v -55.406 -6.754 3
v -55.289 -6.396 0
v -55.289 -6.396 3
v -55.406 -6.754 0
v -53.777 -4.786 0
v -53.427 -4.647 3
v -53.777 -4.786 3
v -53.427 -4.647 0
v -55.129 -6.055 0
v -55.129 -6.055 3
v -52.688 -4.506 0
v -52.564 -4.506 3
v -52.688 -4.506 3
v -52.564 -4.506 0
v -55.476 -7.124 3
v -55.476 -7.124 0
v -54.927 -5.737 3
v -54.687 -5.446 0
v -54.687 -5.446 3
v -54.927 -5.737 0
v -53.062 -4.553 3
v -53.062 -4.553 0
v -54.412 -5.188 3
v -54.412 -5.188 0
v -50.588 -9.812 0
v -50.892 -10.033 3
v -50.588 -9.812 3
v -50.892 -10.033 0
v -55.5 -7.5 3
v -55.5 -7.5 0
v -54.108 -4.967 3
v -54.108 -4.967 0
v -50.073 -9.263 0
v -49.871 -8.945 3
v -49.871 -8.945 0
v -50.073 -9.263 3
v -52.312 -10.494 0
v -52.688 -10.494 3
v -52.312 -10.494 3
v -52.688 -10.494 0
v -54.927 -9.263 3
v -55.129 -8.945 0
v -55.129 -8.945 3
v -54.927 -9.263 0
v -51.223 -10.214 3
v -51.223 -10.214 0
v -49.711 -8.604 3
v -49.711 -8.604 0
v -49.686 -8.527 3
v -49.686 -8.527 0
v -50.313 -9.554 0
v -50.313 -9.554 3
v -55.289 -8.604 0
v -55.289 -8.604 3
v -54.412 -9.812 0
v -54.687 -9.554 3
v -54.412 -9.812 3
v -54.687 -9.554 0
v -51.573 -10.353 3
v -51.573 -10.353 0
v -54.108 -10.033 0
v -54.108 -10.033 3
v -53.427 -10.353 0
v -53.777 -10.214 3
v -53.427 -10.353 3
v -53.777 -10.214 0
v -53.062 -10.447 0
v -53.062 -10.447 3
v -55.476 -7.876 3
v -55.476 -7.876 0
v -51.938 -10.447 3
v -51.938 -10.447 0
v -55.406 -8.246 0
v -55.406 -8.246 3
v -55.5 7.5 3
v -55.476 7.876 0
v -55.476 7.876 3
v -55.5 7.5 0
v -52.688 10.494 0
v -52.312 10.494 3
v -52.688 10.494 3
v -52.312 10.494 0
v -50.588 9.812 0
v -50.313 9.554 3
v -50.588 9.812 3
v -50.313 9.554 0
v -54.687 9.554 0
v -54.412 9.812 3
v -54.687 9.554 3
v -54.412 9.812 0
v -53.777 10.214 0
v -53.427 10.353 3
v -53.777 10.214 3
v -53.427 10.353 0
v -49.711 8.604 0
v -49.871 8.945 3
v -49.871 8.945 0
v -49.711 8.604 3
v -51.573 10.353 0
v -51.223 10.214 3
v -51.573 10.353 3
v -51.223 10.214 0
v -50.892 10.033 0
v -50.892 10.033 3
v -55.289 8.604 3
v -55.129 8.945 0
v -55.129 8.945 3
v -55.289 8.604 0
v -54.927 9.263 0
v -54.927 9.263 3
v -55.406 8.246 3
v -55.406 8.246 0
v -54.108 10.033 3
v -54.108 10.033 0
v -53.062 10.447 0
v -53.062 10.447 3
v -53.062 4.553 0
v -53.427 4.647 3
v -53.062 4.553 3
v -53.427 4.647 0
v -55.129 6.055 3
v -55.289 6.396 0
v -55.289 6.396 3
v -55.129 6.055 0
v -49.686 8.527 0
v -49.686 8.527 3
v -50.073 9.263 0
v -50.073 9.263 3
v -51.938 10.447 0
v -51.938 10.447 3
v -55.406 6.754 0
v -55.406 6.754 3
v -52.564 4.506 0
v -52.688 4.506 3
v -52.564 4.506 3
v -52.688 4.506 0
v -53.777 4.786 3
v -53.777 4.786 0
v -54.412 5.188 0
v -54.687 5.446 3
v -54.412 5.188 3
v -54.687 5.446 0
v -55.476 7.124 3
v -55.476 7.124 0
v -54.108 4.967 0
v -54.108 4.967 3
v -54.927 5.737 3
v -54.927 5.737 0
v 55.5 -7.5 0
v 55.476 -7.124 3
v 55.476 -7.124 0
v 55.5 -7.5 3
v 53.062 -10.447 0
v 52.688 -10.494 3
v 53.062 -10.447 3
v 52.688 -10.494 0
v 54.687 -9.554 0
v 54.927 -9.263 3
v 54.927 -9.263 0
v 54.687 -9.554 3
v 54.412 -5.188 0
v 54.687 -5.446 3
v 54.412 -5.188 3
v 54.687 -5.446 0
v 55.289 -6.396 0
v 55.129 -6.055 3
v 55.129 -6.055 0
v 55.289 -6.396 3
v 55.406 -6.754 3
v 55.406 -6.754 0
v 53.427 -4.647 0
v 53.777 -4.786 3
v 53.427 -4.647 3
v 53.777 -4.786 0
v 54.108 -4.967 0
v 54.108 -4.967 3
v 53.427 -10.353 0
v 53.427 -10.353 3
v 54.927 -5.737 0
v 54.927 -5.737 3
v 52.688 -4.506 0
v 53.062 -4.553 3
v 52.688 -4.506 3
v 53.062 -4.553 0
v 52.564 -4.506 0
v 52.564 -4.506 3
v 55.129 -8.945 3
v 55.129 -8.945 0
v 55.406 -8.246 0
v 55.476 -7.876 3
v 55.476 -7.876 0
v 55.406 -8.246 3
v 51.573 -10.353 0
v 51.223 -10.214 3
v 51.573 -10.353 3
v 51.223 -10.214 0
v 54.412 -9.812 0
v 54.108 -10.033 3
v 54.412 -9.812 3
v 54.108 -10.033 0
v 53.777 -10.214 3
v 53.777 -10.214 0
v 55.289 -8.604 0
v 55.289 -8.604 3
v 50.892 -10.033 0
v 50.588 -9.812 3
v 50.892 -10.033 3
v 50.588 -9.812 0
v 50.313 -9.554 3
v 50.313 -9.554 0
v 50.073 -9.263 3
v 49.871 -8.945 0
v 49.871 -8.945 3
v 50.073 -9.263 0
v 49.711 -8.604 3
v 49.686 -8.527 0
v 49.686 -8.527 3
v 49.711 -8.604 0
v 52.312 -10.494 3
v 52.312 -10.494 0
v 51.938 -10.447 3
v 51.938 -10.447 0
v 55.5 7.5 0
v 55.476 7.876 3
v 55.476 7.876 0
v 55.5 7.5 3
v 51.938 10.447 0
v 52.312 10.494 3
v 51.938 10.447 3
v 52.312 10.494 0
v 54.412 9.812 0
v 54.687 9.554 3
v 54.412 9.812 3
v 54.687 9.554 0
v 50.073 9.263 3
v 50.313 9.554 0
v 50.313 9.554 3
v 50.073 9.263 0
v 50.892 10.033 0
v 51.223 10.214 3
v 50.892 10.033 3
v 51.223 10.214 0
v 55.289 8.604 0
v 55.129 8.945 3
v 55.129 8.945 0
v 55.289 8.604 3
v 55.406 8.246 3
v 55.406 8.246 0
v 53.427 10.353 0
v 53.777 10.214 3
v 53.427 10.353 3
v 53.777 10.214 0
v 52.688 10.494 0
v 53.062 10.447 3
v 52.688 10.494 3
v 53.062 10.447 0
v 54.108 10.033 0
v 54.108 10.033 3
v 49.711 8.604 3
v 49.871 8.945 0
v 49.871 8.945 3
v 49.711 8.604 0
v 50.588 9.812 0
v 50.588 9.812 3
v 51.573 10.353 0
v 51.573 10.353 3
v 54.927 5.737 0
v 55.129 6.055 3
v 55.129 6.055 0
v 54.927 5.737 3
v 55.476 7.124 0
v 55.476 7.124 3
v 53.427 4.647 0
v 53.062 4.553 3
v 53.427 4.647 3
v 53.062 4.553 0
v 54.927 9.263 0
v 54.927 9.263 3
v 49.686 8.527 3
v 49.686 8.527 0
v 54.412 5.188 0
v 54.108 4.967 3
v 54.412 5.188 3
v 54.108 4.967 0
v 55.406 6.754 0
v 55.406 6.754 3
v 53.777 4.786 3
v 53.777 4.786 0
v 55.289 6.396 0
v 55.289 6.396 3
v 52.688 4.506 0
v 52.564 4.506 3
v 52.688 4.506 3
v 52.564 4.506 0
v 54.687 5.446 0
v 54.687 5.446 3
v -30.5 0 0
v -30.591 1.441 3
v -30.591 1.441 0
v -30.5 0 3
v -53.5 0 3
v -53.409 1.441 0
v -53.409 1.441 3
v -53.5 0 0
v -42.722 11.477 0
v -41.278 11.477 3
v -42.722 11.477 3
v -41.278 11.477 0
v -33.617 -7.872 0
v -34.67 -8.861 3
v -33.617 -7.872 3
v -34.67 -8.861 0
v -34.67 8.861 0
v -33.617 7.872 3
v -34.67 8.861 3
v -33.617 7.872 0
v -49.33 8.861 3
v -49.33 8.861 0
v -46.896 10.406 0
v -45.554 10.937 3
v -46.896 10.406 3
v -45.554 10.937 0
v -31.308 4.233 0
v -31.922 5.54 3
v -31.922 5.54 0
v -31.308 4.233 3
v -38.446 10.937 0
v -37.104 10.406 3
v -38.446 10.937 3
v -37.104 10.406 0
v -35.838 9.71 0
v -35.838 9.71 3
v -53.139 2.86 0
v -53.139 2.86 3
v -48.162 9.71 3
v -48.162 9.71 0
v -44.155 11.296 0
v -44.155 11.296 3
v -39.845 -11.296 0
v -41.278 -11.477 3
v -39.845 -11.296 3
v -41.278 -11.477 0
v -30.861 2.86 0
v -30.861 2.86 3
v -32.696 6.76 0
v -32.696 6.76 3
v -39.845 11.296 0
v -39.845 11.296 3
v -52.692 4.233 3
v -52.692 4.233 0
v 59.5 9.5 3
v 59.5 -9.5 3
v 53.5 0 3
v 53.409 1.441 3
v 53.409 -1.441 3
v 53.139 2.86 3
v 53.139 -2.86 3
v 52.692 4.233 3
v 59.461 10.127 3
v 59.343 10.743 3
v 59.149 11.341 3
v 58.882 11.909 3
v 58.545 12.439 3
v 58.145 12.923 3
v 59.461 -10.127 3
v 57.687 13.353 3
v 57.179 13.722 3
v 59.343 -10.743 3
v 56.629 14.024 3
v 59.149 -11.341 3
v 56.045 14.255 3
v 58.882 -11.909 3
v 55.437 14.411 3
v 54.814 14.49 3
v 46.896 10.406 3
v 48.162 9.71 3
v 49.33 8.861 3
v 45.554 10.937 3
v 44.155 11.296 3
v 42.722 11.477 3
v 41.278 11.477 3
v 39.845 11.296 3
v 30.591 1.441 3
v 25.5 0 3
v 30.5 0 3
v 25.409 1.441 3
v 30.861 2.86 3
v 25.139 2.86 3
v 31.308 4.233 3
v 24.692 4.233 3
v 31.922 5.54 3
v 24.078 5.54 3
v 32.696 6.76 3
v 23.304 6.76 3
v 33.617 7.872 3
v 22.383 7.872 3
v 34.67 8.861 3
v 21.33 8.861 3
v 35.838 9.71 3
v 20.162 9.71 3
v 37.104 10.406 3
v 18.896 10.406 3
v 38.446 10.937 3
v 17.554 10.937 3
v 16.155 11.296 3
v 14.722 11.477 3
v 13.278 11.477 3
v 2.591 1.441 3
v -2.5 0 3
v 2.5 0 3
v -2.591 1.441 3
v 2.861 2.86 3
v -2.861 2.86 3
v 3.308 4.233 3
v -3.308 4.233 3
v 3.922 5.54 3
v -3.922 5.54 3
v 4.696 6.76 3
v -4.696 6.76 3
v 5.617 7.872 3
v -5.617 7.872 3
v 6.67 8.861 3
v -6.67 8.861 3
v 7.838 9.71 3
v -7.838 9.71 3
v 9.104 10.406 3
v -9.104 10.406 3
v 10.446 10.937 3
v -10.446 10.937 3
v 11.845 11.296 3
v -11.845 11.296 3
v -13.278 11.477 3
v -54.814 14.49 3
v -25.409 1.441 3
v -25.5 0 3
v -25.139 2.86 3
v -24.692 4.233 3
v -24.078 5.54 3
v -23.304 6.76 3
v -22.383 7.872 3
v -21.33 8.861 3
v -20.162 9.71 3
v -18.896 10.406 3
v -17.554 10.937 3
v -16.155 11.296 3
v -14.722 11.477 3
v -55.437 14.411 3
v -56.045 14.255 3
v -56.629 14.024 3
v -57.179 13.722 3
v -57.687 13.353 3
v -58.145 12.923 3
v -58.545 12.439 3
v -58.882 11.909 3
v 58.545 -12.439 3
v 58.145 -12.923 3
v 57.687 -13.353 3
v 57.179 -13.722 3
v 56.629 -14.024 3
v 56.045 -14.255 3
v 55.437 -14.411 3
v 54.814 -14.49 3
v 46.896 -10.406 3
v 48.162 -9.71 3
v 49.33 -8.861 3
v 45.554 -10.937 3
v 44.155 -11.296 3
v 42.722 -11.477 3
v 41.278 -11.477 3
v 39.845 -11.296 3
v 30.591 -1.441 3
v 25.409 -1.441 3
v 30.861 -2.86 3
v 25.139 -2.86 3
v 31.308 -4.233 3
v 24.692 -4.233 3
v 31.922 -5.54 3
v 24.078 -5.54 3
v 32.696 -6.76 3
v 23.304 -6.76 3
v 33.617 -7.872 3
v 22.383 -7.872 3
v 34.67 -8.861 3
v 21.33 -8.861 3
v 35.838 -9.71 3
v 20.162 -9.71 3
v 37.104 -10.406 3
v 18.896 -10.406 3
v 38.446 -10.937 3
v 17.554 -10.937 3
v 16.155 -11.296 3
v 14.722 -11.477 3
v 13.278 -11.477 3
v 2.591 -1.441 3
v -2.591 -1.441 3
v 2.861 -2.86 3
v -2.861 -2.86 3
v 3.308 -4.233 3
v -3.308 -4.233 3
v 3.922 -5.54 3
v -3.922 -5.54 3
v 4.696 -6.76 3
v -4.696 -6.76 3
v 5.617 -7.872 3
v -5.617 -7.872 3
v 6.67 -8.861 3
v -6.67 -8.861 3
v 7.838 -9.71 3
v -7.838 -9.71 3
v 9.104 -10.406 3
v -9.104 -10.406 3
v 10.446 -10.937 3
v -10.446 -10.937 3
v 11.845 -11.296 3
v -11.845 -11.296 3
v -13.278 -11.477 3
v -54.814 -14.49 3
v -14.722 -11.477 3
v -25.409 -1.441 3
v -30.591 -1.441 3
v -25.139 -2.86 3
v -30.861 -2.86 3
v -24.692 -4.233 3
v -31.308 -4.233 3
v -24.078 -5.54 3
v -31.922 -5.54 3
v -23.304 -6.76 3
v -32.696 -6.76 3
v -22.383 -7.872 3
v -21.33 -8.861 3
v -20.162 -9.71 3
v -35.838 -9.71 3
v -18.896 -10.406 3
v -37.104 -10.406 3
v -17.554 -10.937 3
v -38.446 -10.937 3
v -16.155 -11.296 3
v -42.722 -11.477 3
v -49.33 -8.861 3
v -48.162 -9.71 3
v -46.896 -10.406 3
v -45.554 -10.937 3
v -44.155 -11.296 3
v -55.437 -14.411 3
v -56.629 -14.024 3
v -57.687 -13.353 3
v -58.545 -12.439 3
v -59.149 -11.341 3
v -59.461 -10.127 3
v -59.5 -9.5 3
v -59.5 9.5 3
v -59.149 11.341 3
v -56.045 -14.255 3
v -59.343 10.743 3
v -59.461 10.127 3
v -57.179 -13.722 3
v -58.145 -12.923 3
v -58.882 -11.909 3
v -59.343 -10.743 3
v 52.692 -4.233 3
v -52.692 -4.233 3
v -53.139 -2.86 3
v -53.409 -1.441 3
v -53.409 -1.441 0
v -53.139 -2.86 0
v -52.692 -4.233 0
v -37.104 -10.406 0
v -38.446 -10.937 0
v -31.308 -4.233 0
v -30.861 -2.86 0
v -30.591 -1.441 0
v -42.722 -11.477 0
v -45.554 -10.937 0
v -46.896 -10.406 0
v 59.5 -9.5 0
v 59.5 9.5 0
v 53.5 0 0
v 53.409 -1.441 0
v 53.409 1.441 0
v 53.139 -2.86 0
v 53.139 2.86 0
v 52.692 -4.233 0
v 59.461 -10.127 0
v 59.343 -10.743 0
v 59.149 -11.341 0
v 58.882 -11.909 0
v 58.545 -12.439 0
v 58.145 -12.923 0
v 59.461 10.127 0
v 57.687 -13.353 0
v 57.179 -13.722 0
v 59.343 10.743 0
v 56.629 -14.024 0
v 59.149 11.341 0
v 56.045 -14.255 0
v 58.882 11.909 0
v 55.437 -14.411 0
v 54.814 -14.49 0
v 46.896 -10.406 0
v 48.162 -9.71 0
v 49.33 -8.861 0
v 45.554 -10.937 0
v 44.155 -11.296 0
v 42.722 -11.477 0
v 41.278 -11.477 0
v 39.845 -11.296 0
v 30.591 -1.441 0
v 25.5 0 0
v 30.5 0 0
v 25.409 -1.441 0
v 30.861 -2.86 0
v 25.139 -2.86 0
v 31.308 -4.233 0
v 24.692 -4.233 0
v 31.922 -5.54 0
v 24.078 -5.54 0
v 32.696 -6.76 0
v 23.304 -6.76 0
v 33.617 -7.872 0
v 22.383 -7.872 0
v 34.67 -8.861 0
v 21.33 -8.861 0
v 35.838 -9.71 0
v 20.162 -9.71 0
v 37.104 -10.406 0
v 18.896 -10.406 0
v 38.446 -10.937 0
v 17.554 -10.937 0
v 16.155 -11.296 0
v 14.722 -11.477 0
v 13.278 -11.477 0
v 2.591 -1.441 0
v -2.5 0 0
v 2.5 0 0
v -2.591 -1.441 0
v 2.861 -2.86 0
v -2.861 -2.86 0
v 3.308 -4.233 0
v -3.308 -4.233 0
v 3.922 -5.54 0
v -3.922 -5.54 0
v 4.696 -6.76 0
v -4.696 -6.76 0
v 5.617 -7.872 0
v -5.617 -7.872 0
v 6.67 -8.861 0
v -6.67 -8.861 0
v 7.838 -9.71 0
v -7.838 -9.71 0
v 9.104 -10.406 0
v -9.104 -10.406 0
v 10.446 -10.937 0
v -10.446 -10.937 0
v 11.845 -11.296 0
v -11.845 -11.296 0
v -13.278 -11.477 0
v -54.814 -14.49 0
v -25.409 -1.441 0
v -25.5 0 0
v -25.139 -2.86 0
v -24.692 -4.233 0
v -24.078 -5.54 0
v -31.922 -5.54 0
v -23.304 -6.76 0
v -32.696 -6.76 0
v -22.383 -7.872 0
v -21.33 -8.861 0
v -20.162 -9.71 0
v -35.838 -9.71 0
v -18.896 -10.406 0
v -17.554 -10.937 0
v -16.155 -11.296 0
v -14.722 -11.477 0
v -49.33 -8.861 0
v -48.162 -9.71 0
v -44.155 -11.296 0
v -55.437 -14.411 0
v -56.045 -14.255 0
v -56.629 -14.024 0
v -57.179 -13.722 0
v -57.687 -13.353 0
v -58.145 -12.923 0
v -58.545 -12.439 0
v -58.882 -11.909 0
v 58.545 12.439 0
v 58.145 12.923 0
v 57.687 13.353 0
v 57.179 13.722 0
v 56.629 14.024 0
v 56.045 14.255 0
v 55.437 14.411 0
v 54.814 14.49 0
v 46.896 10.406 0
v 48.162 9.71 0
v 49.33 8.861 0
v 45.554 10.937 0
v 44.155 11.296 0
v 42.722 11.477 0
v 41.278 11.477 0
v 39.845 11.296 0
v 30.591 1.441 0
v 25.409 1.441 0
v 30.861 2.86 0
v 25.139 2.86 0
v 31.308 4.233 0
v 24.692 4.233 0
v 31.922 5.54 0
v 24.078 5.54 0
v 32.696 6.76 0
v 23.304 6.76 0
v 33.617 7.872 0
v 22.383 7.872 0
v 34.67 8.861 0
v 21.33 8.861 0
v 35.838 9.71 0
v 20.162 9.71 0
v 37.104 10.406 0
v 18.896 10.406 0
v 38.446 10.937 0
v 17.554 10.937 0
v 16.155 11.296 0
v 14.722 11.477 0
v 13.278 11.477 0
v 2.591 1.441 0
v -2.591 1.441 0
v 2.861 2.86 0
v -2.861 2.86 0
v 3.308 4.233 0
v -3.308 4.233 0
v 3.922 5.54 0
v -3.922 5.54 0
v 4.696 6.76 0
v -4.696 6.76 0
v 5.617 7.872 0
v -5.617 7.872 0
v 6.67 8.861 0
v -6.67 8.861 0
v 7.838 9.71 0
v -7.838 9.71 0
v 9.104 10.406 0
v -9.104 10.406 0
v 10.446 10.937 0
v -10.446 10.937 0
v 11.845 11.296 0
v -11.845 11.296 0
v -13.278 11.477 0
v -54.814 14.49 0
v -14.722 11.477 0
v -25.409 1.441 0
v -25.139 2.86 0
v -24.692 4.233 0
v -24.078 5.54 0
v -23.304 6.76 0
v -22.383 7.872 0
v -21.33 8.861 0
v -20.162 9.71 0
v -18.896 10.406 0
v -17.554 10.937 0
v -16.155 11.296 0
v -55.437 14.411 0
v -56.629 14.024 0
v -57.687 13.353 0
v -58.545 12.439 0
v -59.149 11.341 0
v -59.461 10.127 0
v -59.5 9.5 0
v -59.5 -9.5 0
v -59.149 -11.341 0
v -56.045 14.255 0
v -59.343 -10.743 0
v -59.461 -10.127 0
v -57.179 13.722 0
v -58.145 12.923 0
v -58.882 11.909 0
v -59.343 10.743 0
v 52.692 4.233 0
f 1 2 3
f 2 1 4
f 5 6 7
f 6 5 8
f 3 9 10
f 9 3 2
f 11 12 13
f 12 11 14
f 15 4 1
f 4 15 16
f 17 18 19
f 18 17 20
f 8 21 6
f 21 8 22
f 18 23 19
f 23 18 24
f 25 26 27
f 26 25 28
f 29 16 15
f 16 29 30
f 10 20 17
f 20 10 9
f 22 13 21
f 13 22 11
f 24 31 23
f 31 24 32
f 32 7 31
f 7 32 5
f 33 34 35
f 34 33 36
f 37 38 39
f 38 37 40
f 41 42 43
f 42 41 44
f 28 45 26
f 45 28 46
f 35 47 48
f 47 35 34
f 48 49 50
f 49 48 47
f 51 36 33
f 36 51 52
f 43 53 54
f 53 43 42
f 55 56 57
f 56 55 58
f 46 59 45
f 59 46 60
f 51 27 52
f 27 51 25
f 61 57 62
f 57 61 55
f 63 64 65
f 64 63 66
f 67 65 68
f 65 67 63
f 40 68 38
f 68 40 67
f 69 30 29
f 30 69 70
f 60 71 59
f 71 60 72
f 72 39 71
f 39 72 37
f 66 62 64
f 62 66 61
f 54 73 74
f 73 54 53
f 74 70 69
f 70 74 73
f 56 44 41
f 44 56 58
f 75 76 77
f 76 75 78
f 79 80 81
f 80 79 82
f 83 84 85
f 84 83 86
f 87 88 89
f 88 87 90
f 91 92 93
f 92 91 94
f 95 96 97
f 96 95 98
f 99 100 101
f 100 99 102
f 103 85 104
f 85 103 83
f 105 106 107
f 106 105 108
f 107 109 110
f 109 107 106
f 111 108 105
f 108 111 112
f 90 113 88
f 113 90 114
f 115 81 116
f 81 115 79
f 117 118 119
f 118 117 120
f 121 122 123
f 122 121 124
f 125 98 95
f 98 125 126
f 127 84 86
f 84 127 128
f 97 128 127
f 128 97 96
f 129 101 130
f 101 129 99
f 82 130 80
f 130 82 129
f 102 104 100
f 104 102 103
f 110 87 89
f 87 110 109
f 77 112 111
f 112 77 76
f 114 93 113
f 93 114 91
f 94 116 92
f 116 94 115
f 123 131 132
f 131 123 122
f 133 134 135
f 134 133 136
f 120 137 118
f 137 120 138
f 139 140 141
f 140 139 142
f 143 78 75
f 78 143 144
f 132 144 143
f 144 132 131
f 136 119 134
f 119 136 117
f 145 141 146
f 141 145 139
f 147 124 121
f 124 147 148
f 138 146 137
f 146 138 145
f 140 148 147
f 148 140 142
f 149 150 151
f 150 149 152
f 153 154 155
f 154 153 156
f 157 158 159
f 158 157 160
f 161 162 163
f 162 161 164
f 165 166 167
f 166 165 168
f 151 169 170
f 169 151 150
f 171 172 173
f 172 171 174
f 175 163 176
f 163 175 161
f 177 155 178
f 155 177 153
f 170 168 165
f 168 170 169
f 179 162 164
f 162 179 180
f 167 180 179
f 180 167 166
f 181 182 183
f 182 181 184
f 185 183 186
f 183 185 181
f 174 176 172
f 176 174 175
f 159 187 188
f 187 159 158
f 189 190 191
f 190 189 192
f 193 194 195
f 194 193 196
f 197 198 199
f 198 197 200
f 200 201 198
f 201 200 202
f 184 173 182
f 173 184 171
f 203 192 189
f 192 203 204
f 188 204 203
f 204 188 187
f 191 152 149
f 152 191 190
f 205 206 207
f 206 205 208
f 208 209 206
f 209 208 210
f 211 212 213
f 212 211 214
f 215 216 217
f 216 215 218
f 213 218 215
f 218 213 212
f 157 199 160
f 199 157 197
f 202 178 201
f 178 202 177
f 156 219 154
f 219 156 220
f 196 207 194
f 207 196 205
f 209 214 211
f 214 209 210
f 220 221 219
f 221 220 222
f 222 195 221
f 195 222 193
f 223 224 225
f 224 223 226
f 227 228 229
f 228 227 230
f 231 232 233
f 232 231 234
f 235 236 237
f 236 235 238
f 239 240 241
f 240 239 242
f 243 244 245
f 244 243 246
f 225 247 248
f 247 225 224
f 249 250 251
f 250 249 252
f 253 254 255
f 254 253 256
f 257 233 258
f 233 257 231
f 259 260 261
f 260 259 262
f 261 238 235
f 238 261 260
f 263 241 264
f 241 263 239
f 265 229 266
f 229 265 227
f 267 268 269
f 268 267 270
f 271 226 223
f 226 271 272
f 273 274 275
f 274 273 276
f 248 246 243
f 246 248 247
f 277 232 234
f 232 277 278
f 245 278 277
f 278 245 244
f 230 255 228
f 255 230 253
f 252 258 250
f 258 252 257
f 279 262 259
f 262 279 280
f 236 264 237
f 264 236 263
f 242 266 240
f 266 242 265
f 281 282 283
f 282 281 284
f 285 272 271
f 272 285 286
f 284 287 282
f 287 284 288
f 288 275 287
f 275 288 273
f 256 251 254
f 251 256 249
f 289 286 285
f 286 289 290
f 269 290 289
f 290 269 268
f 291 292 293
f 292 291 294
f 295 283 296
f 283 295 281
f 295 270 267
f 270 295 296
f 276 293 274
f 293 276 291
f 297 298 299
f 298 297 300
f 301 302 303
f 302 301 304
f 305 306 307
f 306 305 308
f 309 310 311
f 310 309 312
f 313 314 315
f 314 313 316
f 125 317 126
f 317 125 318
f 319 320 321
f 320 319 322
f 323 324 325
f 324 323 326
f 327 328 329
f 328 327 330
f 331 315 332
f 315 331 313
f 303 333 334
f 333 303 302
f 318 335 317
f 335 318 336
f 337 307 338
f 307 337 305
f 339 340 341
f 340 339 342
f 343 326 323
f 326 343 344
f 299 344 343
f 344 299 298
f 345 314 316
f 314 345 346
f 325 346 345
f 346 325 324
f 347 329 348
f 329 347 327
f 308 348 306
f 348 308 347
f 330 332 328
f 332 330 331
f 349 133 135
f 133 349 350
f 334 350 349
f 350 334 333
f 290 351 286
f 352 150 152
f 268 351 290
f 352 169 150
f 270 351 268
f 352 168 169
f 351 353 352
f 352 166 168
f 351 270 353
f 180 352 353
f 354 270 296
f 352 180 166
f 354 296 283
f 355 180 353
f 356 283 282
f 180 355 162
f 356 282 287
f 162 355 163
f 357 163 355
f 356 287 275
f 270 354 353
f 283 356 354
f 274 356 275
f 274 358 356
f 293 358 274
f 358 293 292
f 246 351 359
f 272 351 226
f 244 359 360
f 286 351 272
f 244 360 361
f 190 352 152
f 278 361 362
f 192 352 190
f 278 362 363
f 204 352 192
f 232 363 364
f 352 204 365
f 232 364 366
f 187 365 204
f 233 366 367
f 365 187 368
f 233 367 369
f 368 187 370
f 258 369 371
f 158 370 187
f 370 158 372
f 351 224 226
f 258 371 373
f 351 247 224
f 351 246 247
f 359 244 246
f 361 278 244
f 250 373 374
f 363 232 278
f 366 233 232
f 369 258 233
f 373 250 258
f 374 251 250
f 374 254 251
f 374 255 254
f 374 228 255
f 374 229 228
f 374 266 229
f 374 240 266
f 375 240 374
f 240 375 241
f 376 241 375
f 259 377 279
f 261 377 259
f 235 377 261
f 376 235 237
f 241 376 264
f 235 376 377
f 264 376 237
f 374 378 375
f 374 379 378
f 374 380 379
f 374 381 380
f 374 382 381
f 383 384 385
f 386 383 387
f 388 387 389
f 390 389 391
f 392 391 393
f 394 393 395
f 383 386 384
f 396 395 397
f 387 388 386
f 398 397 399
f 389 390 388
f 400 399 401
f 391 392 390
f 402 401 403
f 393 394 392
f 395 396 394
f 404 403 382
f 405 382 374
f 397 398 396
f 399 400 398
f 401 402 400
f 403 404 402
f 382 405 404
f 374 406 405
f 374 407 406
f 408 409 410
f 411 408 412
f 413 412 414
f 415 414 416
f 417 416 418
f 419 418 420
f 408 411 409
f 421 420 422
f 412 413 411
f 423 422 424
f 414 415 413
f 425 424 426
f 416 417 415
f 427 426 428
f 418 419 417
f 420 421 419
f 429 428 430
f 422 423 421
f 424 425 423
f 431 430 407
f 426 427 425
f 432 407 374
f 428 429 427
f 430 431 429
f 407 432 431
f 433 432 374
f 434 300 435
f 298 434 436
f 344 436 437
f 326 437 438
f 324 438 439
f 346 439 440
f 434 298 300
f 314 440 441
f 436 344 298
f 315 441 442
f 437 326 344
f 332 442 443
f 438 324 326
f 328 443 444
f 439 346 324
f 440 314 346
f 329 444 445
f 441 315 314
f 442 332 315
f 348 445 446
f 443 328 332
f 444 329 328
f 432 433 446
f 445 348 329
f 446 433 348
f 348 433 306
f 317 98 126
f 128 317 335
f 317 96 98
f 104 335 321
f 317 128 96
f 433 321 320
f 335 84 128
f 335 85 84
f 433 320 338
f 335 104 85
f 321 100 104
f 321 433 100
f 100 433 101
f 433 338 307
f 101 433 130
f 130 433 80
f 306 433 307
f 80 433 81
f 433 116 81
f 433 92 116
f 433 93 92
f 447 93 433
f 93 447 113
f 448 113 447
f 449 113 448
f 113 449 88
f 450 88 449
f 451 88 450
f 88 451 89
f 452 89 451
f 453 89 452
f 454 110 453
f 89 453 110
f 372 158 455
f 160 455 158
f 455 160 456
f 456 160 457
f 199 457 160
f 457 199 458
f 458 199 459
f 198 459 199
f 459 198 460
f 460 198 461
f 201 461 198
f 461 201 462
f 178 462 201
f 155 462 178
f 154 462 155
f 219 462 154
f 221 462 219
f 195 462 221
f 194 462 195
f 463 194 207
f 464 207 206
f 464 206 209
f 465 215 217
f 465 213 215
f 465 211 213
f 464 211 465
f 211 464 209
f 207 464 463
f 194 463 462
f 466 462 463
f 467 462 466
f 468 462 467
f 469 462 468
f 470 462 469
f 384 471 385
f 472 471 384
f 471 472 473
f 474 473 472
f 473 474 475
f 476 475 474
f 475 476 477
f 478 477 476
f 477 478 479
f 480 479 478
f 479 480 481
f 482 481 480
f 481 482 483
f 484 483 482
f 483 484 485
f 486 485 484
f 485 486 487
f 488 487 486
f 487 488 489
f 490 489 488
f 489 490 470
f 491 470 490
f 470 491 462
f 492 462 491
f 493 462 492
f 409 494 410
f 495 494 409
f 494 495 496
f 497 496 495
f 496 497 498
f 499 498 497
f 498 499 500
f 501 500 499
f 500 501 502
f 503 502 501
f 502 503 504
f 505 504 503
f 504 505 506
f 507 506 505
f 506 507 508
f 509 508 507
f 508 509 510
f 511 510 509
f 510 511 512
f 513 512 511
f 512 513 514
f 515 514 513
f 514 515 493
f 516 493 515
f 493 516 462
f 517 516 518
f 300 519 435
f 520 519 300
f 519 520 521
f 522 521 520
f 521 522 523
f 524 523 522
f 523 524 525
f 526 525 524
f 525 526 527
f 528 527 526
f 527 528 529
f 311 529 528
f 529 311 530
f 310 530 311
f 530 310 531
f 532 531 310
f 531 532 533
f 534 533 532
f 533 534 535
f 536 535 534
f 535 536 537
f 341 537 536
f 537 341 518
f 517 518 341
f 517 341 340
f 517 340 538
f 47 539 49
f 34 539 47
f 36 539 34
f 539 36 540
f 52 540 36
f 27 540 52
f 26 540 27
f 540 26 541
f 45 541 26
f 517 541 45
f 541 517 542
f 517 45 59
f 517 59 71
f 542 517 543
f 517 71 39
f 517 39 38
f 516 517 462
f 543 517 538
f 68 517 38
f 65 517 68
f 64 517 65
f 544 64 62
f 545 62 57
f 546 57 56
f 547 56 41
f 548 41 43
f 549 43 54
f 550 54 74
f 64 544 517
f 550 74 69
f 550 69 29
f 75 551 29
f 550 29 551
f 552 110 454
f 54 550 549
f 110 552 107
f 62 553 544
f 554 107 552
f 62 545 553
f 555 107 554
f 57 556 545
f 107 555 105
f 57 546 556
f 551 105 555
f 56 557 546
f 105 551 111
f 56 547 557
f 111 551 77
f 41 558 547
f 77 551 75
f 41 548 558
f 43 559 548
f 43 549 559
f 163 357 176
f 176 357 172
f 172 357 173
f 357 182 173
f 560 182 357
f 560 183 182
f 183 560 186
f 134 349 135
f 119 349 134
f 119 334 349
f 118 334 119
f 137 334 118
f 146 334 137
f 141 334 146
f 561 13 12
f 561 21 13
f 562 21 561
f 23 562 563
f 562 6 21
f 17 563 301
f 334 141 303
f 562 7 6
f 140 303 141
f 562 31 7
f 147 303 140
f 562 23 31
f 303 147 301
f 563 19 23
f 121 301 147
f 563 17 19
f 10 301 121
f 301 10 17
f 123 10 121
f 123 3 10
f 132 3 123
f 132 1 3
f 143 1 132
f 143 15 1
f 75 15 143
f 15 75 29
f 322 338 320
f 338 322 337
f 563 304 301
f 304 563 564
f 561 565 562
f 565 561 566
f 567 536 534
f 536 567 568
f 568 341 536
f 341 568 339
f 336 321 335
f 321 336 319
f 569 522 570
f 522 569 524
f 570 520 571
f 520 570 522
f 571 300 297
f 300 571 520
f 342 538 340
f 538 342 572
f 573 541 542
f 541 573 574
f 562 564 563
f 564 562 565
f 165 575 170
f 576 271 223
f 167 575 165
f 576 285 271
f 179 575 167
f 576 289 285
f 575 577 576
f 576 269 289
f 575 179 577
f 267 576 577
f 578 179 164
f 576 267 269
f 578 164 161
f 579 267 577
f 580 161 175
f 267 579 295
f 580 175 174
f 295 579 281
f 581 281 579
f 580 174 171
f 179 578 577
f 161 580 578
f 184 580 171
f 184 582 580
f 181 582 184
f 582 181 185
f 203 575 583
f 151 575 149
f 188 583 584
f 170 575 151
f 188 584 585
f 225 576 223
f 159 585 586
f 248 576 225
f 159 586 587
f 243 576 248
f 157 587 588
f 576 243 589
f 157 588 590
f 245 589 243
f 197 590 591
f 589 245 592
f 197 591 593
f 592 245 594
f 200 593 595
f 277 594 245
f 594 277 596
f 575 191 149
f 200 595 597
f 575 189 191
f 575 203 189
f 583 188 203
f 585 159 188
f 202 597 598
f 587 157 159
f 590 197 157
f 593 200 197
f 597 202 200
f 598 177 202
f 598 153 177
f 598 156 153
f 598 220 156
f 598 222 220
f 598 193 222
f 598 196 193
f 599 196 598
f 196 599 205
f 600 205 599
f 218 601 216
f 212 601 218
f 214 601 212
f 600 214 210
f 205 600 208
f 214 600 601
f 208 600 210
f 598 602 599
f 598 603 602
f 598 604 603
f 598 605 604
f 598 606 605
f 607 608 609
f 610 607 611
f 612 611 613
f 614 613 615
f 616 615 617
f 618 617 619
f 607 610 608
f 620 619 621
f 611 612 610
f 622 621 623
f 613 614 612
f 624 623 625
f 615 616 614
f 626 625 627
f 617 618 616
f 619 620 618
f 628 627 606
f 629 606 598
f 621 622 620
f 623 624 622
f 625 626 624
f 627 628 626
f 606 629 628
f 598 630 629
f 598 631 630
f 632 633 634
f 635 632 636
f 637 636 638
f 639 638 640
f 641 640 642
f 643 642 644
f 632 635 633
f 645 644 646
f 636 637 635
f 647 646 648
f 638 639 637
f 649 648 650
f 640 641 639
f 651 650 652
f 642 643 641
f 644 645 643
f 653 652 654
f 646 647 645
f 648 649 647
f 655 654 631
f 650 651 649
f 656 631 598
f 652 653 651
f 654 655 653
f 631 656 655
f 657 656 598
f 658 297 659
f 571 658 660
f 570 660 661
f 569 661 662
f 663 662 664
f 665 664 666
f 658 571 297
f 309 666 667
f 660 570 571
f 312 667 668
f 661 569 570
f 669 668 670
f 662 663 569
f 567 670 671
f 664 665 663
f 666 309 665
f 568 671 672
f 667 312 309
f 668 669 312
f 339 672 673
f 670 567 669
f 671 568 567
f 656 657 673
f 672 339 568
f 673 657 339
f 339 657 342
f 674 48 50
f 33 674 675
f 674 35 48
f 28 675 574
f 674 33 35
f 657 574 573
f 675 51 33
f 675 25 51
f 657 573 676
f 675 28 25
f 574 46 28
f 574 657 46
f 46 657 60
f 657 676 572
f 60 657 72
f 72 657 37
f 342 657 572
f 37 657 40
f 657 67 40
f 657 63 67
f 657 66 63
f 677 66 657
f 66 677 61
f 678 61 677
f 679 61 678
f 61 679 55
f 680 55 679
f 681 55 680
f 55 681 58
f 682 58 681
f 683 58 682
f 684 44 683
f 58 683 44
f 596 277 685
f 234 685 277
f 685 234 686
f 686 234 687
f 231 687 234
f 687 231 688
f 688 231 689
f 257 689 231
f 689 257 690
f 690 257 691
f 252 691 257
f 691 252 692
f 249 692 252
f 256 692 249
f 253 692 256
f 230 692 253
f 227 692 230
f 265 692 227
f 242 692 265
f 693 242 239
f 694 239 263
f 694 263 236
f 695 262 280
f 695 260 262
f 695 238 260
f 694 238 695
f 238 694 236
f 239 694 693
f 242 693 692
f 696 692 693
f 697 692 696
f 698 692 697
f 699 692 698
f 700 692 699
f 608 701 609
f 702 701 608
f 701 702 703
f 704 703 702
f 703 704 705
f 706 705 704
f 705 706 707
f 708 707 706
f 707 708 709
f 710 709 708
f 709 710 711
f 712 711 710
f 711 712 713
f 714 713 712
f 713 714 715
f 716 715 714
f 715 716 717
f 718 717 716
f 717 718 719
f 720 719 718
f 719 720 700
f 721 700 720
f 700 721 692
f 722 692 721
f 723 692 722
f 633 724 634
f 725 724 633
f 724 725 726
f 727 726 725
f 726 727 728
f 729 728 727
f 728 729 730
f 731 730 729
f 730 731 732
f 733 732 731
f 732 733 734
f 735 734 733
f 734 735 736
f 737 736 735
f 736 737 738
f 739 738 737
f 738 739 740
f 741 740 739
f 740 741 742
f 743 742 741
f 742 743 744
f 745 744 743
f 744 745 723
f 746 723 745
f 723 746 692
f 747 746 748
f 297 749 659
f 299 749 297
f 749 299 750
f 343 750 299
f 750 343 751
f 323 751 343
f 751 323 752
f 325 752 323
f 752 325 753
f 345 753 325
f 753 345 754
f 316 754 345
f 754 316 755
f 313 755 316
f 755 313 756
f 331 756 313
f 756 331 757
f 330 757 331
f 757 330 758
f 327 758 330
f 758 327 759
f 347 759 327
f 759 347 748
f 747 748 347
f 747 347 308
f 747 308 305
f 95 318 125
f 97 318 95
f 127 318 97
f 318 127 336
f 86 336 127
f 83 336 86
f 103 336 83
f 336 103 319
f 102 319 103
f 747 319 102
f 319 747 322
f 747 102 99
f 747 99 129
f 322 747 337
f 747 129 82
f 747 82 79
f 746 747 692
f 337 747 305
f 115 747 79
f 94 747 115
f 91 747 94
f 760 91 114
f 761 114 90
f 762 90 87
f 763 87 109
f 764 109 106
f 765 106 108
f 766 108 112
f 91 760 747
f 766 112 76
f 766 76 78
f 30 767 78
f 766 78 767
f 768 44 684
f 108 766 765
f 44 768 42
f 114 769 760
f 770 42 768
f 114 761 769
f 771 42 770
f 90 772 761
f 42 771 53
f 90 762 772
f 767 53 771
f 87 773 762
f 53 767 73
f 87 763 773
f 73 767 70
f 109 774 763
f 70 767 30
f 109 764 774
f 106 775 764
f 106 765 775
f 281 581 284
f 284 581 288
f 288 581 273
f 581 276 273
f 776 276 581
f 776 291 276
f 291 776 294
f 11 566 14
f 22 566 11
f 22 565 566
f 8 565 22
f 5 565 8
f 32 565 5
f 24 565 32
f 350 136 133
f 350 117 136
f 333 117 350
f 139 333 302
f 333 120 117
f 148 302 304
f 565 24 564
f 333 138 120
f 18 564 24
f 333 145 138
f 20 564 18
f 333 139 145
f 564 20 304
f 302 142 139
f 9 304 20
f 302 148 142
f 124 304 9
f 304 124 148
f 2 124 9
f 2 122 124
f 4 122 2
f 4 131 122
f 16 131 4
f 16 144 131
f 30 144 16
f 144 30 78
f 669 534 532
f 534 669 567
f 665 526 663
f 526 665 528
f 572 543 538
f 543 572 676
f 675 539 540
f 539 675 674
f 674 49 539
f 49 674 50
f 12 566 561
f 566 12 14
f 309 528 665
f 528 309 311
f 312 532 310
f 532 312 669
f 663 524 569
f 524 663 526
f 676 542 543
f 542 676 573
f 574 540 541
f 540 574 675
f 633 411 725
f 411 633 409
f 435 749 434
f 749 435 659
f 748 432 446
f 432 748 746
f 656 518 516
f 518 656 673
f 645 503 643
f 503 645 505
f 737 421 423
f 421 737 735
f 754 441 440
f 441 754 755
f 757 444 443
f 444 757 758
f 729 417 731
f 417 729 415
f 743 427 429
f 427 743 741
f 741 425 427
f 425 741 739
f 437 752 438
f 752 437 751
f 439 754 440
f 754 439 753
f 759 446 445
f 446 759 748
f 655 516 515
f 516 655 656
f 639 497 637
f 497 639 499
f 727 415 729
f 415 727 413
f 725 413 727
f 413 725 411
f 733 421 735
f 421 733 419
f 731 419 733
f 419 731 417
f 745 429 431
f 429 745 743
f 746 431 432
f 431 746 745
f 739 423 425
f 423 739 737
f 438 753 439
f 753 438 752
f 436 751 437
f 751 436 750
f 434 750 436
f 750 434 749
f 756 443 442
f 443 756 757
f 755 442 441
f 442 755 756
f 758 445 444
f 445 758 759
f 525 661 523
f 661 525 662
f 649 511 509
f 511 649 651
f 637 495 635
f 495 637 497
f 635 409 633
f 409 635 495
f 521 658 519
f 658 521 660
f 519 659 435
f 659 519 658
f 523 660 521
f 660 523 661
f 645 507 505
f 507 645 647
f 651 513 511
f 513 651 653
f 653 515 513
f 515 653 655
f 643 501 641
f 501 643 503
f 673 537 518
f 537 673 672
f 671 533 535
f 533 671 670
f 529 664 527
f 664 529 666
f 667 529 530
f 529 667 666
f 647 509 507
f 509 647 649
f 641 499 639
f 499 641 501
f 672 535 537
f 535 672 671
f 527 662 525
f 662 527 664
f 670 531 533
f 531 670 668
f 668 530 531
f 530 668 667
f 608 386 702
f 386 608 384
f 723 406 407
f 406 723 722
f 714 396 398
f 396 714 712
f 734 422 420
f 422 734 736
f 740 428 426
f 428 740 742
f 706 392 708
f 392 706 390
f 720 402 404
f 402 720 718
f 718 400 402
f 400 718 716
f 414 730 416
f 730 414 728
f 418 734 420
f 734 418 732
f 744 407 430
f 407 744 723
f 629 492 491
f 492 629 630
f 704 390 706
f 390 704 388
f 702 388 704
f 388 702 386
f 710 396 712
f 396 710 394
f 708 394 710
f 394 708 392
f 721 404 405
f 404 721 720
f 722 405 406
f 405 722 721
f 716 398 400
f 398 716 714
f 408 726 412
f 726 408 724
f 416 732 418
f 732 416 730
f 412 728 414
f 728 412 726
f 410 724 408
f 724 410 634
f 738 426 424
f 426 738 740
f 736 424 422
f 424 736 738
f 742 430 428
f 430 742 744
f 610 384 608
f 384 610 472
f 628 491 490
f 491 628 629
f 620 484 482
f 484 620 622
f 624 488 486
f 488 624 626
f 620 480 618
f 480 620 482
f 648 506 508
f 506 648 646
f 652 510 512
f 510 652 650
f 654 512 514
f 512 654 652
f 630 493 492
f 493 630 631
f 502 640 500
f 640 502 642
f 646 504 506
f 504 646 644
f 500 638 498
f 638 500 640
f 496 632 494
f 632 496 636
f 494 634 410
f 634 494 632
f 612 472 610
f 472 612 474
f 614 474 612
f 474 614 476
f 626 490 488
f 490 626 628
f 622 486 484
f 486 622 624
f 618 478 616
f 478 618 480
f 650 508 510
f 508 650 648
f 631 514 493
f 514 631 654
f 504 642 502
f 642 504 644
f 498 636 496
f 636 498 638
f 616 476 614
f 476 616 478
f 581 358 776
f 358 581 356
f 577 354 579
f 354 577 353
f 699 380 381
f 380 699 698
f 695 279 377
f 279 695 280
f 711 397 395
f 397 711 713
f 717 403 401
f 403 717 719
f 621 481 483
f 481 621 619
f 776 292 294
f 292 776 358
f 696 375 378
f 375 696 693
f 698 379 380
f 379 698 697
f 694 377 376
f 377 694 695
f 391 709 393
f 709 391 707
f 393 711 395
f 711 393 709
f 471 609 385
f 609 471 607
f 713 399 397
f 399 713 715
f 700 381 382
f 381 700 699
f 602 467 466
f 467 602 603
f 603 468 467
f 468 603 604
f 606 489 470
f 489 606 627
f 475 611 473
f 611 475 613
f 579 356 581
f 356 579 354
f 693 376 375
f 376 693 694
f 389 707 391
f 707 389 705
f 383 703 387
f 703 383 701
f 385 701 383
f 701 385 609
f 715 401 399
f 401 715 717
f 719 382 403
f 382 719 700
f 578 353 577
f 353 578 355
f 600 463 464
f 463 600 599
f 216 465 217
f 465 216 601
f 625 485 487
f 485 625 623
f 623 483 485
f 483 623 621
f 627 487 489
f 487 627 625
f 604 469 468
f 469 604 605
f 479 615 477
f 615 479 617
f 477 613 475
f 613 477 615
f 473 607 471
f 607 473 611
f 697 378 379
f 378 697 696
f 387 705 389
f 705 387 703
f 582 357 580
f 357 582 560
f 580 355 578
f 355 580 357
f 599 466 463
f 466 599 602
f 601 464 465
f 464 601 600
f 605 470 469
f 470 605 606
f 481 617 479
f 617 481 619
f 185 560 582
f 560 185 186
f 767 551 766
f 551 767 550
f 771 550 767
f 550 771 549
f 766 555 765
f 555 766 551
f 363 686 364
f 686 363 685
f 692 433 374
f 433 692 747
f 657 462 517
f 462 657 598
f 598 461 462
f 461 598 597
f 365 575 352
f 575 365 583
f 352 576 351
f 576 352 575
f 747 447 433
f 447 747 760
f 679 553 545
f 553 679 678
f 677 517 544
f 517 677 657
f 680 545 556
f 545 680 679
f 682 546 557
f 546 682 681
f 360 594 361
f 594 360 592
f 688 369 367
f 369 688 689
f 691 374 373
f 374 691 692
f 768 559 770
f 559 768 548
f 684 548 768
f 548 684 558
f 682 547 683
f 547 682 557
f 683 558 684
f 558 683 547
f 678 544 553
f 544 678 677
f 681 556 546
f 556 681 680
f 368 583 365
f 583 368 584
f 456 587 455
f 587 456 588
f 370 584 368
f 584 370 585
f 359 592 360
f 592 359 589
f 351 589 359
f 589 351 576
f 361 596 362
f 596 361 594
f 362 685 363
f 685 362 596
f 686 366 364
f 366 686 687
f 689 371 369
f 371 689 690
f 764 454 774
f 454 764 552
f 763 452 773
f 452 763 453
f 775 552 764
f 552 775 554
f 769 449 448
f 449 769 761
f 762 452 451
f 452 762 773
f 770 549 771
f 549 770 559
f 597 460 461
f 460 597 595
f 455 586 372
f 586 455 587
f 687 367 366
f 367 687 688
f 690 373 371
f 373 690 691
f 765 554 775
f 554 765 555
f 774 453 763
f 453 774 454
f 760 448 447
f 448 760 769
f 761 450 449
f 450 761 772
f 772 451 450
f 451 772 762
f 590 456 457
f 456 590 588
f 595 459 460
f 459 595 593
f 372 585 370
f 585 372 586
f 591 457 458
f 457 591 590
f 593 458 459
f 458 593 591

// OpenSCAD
$fn = 50;


difference() {
	union() {
		hull() {
			translate(v = [-54.5000000000, 9.5000000000, 0]) {
				cylinder(h = 3, r = 5);
			}
			translate(v = [54.5000000000, 9.5000000000, 0]) {
				cylinder(h = 3, r = 5);
			}
			translate(v = [-54.5000000000, -9.5000000000, 0]) {
				cylinder(h = 3, r = 5);
			}
			translate(v = [54.5000000000, -9.5000000000, 0]) {
				cylinder(h = 3, r = 5);
			}
		}
	}
	union() {
		#translate(v = [-52.5000000000, -7.5000000000, -100.0000000000]) {
			cylinder(h = 200, r = 3.0000000000);
		}
		#translate(v = [-52.5000000000, 7.5000000000, -100.0000000000]) {
			cylinder(h = 200, r = 3.0000000000);
		}
		#translate(v = [52.5000000000, -7.5000000000, -100.0000000000]) {
			cylinder(h = 200, r = 3.0000000000);
		}
		#translate(v = [52.5000000000, 7.5000000000, -100.0000000000]) {
			cylinder(h = 200, r = 3.0000000000);
		}
		#translate(v = [-42.0000000000, 0, 0]) {
			cylinder(h = 3, r = 11.5000000000);
		}
		#translate(v = [-14.0000000000, 0, 0]) {
			cylinder(h = 3, r = 11.5000000000);
		}
		#translate(v = [14.0000000000, 0, 0]) {
			cylinder(h = 3, r = 11.5000000000);
		}
		#translate(v = [42.0000000000, 0, 0]) {
			cylinder(h = 3, r = 11.5000000000);
		}
	}
}
